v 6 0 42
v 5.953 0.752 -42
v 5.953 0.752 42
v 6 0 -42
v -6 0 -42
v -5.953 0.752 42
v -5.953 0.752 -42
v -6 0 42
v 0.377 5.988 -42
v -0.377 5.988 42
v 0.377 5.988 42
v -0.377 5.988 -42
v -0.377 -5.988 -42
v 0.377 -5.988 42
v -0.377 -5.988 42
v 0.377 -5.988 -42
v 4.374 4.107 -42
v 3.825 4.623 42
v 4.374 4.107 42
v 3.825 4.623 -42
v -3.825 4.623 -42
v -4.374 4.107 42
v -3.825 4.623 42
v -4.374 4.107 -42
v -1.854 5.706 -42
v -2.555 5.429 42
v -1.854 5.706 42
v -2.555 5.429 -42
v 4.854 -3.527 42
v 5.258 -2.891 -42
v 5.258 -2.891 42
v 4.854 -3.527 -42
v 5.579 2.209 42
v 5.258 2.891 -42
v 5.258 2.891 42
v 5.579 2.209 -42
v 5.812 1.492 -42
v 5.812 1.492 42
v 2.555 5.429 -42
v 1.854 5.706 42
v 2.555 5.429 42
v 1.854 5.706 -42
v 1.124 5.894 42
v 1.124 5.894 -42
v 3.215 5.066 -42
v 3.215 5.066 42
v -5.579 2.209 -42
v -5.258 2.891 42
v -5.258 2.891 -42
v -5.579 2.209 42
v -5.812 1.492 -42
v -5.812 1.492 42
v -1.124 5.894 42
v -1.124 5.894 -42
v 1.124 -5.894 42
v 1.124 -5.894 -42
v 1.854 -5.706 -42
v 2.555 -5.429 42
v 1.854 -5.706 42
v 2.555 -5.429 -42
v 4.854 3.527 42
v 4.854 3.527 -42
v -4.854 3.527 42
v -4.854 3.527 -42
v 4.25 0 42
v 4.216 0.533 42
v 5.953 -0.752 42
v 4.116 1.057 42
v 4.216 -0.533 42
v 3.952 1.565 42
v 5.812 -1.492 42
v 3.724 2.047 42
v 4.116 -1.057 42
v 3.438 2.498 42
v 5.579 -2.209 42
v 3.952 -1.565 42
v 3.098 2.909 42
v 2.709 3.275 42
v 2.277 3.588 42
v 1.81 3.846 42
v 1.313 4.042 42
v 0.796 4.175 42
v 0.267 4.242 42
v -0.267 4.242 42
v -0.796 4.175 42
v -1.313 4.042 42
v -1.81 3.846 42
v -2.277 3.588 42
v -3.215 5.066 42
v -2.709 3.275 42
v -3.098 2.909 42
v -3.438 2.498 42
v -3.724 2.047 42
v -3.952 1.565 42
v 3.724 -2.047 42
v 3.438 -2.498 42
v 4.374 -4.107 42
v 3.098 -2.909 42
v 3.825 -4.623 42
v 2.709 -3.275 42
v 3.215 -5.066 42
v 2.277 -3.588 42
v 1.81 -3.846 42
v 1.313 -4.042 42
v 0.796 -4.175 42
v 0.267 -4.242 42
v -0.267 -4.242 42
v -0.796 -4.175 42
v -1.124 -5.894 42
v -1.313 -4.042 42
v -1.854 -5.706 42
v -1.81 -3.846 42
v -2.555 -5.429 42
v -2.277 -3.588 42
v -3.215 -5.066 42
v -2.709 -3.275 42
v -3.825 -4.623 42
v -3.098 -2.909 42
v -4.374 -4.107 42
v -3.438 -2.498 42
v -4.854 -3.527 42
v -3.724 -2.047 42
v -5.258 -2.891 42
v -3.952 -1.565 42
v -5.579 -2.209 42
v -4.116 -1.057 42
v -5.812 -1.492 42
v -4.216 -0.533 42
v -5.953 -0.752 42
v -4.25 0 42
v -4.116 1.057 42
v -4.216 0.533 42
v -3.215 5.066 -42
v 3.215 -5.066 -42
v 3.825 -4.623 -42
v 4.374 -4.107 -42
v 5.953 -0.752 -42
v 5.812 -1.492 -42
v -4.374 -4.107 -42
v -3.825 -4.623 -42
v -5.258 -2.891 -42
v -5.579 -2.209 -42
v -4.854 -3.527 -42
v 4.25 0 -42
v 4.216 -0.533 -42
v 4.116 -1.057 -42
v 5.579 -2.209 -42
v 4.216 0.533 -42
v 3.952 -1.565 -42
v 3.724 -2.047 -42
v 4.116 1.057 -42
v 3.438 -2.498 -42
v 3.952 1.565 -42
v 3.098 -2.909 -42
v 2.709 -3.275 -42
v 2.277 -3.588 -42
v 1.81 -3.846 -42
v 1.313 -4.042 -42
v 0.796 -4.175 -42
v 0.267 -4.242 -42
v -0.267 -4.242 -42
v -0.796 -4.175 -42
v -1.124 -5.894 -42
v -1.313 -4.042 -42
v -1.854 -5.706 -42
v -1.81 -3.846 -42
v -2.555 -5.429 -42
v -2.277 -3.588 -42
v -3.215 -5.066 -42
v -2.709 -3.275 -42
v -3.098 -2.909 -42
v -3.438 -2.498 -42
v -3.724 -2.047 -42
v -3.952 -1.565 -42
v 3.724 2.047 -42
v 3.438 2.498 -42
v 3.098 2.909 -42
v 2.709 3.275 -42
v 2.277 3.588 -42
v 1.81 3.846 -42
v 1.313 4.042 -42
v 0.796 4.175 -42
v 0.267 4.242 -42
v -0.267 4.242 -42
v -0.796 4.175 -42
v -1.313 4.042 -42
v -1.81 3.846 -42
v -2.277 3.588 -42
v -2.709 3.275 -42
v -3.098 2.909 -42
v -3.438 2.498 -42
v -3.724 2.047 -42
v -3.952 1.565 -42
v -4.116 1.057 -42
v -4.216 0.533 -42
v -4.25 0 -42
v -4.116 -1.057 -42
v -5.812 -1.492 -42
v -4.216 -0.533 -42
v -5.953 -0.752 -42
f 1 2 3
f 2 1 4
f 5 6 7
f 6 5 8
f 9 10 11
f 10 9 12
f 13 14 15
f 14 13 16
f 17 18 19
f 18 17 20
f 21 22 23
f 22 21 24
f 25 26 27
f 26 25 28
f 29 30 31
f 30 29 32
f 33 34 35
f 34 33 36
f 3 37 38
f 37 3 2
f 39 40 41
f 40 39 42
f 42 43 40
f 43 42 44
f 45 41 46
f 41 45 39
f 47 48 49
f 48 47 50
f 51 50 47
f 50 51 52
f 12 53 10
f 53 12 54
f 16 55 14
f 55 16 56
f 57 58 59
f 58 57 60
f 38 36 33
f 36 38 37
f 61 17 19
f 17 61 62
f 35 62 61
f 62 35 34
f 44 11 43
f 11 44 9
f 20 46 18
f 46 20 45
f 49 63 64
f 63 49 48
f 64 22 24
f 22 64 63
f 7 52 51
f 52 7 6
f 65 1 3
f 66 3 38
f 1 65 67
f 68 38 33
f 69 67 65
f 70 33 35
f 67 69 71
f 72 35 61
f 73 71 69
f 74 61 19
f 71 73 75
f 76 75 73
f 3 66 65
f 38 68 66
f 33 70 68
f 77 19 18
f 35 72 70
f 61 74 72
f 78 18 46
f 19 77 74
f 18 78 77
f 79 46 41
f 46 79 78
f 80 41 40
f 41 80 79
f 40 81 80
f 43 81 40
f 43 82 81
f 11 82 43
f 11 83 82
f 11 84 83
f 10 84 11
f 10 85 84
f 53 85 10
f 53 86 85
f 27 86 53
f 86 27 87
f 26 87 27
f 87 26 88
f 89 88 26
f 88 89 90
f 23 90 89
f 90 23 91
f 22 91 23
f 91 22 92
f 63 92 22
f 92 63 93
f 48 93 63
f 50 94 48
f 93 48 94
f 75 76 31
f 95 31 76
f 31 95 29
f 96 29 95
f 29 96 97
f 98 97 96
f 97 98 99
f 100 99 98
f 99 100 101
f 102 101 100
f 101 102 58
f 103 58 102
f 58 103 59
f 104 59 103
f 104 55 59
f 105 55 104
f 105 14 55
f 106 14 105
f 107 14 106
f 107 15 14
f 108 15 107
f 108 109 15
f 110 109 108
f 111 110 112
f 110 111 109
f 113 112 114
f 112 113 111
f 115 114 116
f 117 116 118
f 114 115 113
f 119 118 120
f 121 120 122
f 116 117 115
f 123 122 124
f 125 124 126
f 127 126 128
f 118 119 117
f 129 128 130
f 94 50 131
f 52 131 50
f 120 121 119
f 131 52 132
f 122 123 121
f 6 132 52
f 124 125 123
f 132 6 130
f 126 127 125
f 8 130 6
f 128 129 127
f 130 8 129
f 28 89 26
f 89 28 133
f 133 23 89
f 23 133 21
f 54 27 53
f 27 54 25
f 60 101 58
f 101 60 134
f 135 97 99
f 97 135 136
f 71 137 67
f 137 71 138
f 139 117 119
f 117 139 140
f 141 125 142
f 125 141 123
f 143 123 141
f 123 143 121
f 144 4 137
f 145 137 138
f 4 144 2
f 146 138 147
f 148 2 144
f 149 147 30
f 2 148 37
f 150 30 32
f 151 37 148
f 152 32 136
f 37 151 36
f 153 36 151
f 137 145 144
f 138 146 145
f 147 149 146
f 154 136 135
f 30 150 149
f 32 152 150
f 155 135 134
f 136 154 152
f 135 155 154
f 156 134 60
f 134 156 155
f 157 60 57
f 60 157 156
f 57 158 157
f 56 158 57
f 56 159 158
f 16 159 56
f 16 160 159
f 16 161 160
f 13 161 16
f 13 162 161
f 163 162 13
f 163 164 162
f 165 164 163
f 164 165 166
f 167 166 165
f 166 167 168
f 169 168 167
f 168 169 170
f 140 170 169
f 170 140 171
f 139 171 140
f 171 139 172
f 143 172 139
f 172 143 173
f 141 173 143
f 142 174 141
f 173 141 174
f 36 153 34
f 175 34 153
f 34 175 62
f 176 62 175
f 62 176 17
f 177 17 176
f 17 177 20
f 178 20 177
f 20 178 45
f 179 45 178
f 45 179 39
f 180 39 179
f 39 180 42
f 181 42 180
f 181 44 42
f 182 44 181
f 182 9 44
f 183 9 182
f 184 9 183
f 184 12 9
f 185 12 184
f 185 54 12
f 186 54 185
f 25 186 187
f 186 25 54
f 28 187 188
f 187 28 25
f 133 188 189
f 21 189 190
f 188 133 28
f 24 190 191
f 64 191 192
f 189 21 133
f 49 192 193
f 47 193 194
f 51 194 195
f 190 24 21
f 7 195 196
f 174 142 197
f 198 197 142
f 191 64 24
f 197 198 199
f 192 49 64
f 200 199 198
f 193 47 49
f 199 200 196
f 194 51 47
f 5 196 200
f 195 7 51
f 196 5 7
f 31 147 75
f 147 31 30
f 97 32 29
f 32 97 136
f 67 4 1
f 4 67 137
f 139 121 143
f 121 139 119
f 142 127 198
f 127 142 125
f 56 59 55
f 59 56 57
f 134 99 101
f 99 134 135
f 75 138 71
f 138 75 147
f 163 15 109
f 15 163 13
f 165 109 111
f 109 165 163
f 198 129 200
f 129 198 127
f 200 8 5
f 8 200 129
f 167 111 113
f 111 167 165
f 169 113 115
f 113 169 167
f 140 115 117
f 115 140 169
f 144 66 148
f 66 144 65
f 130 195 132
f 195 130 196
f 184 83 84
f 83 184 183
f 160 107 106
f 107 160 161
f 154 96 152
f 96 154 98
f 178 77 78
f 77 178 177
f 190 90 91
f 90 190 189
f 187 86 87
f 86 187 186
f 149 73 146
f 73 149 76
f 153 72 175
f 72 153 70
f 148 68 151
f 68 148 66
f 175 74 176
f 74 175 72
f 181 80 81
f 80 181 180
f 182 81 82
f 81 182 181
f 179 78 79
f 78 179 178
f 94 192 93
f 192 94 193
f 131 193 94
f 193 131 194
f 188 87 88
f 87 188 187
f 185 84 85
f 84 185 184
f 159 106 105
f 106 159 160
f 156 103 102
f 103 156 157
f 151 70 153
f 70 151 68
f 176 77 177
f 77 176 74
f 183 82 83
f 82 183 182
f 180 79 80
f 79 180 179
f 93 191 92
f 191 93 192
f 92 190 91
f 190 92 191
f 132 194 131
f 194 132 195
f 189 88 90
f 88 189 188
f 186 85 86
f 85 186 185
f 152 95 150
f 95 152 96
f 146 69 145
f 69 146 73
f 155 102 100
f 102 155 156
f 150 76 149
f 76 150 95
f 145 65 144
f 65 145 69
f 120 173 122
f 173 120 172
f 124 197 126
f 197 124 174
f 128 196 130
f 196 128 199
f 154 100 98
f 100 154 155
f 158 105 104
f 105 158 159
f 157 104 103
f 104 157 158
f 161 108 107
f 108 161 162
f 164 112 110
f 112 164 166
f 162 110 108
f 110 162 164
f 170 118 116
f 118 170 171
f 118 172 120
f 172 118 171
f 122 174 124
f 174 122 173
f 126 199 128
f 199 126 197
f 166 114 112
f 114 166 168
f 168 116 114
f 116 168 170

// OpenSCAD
$fn = 50;


difference() {
	union() {
		translate(v = [0, 0, -42.0000000000]) {
			cylinder(h = 84, r = 6.0000000000);
		}
	}
	union() {
		translate(v = [0, 0, -100.0000000000]) {
			cylinder(h = 200, r = 4.2500000000);
		}
	}
}
